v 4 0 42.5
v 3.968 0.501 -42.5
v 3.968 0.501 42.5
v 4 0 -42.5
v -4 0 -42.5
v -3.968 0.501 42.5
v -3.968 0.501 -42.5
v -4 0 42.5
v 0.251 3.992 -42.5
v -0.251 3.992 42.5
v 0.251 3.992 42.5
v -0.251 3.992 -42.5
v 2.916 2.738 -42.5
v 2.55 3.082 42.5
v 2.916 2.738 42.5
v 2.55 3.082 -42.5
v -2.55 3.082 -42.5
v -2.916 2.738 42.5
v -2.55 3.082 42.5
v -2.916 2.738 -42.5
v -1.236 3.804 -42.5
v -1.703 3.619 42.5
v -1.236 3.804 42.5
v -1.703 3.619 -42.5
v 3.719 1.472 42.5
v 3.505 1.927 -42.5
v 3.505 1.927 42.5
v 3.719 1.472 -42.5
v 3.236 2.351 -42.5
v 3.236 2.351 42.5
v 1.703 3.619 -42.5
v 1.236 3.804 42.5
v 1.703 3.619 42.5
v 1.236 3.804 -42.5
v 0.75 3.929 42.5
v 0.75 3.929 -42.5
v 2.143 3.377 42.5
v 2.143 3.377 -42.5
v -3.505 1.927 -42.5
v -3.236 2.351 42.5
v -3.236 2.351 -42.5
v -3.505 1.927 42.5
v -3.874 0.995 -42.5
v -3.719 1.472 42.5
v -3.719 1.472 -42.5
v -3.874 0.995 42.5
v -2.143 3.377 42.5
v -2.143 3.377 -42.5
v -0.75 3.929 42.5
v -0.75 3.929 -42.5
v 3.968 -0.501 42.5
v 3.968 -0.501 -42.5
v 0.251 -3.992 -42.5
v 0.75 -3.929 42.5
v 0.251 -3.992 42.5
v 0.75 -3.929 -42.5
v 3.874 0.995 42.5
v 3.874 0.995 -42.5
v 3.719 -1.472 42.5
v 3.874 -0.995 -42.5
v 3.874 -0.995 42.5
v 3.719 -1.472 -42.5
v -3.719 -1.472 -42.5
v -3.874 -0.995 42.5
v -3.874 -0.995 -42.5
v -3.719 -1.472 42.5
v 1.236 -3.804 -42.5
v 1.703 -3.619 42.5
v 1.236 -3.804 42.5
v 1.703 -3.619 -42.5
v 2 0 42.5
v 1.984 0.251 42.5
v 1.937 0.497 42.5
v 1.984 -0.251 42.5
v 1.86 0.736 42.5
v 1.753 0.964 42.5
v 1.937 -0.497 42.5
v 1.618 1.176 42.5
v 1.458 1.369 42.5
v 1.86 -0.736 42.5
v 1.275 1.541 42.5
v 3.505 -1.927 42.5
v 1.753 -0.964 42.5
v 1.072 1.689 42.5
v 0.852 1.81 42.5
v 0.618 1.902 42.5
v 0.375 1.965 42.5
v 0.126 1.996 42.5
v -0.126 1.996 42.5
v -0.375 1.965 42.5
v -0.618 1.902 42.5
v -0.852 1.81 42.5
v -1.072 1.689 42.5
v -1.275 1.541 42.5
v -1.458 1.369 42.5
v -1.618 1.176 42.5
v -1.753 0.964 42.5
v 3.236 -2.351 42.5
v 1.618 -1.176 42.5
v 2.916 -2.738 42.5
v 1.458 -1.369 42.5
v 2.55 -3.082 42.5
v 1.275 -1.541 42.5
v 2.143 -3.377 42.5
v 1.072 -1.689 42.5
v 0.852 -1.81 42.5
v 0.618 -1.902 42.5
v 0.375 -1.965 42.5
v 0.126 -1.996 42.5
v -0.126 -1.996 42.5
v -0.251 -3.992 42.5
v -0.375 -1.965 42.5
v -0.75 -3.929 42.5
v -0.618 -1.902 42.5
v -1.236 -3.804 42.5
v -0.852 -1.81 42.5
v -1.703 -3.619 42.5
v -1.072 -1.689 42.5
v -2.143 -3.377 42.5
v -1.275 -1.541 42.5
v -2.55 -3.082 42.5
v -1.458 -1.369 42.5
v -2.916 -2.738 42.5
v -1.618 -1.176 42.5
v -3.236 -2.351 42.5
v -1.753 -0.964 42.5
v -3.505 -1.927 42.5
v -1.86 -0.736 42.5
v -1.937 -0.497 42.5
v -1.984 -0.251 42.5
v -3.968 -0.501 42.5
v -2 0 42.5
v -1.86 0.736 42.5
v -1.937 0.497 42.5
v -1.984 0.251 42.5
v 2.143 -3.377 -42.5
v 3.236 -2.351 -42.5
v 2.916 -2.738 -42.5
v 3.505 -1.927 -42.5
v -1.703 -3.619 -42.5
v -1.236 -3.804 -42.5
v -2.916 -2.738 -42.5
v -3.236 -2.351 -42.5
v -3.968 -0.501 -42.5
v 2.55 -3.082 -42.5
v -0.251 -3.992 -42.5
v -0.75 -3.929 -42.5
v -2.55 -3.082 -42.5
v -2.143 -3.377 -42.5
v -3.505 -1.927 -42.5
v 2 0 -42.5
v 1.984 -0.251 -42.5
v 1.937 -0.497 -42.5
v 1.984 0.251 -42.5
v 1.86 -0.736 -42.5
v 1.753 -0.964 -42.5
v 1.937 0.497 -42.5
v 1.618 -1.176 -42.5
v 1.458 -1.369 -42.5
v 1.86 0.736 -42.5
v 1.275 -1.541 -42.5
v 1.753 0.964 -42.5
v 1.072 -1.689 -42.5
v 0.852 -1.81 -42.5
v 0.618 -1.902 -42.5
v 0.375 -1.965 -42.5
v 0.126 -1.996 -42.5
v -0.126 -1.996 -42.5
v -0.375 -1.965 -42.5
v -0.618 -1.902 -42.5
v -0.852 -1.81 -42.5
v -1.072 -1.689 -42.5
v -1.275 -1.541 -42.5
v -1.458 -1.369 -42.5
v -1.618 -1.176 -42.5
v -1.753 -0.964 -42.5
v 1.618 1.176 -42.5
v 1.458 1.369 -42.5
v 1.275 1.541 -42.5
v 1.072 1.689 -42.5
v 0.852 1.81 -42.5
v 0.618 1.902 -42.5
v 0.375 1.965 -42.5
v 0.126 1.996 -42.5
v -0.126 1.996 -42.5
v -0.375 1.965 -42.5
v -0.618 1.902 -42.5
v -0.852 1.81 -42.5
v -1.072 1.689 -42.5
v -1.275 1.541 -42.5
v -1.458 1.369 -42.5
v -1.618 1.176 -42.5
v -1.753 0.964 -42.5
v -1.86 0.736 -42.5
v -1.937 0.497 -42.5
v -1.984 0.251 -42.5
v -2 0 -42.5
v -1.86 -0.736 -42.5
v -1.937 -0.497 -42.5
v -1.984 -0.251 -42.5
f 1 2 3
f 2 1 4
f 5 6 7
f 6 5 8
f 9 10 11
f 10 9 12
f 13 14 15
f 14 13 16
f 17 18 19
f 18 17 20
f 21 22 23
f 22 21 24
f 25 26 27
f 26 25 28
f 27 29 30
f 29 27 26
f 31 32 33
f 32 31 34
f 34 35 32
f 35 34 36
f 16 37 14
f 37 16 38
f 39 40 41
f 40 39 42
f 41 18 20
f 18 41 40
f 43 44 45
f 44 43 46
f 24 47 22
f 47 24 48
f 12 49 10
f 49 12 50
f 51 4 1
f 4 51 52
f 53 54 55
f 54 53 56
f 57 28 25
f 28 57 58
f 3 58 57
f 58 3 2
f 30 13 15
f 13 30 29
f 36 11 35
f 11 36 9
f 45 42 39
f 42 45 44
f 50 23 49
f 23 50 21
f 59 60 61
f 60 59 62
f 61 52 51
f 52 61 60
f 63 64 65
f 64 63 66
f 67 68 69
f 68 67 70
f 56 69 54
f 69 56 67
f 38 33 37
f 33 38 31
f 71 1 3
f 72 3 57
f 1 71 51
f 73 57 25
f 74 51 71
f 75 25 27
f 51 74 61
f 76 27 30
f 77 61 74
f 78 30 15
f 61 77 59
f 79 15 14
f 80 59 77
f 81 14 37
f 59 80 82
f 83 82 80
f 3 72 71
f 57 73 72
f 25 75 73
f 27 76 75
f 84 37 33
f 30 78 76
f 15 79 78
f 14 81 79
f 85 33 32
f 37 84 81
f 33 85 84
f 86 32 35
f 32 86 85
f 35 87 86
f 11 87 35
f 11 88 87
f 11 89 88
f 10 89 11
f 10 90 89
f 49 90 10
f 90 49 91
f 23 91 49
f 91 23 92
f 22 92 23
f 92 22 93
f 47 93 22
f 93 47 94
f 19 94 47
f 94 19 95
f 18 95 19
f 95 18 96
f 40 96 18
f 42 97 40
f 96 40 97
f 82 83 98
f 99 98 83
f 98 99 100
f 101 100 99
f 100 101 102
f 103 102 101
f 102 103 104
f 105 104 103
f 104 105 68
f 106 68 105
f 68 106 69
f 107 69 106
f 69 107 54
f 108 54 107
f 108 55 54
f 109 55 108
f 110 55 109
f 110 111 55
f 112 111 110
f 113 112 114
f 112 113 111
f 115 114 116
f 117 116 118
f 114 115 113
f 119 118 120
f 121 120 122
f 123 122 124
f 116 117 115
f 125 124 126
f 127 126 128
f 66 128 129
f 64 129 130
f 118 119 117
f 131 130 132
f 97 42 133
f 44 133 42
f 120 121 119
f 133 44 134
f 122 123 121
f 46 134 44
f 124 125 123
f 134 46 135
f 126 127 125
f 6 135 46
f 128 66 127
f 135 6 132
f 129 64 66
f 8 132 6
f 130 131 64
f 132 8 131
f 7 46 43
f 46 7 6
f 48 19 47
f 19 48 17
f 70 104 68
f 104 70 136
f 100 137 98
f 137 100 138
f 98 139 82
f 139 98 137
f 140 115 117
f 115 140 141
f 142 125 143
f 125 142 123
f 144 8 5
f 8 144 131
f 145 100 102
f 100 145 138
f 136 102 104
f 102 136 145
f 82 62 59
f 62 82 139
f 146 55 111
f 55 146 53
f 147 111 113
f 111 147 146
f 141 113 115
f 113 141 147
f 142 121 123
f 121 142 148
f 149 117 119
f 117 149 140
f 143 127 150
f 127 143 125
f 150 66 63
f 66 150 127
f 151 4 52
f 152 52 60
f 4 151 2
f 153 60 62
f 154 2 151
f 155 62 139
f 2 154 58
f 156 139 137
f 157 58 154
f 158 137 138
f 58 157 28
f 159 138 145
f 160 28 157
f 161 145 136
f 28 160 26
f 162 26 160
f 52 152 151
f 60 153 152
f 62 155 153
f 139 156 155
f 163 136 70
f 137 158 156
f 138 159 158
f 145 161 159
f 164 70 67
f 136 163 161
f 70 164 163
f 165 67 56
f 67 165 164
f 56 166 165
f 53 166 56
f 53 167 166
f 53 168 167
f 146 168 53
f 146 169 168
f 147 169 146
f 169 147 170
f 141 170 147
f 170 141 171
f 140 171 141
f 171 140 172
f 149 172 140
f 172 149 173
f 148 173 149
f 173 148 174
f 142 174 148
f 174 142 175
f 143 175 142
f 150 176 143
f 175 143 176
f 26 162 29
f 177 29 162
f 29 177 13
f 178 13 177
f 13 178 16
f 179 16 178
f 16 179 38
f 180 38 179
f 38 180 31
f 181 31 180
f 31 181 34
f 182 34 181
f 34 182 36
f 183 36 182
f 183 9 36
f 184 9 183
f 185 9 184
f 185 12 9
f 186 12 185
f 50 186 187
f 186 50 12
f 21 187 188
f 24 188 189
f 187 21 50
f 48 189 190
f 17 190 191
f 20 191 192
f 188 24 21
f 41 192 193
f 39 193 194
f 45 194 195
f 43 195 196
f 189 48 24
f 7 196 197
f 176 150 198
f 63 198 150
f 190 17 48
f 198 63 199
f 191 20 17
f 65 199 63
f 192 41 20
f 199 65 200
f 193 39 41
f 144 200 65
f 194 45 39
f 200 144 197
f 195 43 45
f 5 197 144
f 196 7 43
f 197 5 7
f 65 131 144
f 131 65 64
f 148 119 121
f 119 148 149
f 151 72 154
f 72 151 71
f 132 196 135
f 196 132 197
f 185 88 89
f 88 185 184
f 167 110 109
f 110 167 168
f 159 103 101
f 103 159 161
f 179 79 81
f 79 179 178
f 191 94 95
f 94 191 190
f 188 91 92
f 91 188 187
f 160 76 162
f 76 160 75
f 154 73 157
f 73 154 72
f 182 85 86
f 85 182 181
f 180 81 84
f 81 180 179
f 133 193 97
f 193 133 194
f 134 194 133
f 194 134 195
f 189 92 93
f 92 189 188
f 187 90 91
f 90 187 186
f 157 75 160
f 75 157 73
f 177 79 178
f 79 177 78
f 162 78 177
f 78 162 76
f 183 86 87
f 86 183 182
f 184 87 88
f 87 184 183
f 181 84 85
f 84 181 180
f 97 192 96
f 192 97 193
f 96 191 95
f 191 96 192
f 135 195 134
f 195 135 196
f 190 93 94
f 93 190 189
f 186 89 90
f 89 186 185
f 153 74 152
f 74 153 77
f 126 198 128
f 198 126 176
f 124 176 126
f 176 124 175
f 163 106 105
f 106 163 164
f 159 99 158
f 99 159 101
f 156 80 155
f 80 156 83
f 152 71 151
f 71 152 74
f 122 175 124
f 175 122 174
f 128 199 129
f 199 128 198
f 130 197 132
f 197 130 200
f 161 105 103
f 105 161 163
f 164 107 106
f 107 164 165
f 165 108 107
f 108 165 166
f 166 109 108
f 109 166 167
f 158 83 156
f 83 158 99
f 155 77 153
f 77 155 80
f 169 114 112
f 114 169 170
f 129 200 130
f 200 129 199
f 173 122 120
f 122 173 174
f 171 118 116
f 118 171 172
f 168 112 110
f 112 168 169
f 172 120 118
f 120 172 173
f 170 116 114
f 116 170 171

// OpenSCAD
$fn = 50;


difference() {
	union() {
		translate(v = [0, 0, -42.5000000000]) {
			cylinder(h = 85, r = 4.0000000000);
		}
	}
	union() {
		translate(v = [0, 0, -100.0000000000]) {
			cylinder(h = 200, r = 2.0000000000);
		}
	}
}
